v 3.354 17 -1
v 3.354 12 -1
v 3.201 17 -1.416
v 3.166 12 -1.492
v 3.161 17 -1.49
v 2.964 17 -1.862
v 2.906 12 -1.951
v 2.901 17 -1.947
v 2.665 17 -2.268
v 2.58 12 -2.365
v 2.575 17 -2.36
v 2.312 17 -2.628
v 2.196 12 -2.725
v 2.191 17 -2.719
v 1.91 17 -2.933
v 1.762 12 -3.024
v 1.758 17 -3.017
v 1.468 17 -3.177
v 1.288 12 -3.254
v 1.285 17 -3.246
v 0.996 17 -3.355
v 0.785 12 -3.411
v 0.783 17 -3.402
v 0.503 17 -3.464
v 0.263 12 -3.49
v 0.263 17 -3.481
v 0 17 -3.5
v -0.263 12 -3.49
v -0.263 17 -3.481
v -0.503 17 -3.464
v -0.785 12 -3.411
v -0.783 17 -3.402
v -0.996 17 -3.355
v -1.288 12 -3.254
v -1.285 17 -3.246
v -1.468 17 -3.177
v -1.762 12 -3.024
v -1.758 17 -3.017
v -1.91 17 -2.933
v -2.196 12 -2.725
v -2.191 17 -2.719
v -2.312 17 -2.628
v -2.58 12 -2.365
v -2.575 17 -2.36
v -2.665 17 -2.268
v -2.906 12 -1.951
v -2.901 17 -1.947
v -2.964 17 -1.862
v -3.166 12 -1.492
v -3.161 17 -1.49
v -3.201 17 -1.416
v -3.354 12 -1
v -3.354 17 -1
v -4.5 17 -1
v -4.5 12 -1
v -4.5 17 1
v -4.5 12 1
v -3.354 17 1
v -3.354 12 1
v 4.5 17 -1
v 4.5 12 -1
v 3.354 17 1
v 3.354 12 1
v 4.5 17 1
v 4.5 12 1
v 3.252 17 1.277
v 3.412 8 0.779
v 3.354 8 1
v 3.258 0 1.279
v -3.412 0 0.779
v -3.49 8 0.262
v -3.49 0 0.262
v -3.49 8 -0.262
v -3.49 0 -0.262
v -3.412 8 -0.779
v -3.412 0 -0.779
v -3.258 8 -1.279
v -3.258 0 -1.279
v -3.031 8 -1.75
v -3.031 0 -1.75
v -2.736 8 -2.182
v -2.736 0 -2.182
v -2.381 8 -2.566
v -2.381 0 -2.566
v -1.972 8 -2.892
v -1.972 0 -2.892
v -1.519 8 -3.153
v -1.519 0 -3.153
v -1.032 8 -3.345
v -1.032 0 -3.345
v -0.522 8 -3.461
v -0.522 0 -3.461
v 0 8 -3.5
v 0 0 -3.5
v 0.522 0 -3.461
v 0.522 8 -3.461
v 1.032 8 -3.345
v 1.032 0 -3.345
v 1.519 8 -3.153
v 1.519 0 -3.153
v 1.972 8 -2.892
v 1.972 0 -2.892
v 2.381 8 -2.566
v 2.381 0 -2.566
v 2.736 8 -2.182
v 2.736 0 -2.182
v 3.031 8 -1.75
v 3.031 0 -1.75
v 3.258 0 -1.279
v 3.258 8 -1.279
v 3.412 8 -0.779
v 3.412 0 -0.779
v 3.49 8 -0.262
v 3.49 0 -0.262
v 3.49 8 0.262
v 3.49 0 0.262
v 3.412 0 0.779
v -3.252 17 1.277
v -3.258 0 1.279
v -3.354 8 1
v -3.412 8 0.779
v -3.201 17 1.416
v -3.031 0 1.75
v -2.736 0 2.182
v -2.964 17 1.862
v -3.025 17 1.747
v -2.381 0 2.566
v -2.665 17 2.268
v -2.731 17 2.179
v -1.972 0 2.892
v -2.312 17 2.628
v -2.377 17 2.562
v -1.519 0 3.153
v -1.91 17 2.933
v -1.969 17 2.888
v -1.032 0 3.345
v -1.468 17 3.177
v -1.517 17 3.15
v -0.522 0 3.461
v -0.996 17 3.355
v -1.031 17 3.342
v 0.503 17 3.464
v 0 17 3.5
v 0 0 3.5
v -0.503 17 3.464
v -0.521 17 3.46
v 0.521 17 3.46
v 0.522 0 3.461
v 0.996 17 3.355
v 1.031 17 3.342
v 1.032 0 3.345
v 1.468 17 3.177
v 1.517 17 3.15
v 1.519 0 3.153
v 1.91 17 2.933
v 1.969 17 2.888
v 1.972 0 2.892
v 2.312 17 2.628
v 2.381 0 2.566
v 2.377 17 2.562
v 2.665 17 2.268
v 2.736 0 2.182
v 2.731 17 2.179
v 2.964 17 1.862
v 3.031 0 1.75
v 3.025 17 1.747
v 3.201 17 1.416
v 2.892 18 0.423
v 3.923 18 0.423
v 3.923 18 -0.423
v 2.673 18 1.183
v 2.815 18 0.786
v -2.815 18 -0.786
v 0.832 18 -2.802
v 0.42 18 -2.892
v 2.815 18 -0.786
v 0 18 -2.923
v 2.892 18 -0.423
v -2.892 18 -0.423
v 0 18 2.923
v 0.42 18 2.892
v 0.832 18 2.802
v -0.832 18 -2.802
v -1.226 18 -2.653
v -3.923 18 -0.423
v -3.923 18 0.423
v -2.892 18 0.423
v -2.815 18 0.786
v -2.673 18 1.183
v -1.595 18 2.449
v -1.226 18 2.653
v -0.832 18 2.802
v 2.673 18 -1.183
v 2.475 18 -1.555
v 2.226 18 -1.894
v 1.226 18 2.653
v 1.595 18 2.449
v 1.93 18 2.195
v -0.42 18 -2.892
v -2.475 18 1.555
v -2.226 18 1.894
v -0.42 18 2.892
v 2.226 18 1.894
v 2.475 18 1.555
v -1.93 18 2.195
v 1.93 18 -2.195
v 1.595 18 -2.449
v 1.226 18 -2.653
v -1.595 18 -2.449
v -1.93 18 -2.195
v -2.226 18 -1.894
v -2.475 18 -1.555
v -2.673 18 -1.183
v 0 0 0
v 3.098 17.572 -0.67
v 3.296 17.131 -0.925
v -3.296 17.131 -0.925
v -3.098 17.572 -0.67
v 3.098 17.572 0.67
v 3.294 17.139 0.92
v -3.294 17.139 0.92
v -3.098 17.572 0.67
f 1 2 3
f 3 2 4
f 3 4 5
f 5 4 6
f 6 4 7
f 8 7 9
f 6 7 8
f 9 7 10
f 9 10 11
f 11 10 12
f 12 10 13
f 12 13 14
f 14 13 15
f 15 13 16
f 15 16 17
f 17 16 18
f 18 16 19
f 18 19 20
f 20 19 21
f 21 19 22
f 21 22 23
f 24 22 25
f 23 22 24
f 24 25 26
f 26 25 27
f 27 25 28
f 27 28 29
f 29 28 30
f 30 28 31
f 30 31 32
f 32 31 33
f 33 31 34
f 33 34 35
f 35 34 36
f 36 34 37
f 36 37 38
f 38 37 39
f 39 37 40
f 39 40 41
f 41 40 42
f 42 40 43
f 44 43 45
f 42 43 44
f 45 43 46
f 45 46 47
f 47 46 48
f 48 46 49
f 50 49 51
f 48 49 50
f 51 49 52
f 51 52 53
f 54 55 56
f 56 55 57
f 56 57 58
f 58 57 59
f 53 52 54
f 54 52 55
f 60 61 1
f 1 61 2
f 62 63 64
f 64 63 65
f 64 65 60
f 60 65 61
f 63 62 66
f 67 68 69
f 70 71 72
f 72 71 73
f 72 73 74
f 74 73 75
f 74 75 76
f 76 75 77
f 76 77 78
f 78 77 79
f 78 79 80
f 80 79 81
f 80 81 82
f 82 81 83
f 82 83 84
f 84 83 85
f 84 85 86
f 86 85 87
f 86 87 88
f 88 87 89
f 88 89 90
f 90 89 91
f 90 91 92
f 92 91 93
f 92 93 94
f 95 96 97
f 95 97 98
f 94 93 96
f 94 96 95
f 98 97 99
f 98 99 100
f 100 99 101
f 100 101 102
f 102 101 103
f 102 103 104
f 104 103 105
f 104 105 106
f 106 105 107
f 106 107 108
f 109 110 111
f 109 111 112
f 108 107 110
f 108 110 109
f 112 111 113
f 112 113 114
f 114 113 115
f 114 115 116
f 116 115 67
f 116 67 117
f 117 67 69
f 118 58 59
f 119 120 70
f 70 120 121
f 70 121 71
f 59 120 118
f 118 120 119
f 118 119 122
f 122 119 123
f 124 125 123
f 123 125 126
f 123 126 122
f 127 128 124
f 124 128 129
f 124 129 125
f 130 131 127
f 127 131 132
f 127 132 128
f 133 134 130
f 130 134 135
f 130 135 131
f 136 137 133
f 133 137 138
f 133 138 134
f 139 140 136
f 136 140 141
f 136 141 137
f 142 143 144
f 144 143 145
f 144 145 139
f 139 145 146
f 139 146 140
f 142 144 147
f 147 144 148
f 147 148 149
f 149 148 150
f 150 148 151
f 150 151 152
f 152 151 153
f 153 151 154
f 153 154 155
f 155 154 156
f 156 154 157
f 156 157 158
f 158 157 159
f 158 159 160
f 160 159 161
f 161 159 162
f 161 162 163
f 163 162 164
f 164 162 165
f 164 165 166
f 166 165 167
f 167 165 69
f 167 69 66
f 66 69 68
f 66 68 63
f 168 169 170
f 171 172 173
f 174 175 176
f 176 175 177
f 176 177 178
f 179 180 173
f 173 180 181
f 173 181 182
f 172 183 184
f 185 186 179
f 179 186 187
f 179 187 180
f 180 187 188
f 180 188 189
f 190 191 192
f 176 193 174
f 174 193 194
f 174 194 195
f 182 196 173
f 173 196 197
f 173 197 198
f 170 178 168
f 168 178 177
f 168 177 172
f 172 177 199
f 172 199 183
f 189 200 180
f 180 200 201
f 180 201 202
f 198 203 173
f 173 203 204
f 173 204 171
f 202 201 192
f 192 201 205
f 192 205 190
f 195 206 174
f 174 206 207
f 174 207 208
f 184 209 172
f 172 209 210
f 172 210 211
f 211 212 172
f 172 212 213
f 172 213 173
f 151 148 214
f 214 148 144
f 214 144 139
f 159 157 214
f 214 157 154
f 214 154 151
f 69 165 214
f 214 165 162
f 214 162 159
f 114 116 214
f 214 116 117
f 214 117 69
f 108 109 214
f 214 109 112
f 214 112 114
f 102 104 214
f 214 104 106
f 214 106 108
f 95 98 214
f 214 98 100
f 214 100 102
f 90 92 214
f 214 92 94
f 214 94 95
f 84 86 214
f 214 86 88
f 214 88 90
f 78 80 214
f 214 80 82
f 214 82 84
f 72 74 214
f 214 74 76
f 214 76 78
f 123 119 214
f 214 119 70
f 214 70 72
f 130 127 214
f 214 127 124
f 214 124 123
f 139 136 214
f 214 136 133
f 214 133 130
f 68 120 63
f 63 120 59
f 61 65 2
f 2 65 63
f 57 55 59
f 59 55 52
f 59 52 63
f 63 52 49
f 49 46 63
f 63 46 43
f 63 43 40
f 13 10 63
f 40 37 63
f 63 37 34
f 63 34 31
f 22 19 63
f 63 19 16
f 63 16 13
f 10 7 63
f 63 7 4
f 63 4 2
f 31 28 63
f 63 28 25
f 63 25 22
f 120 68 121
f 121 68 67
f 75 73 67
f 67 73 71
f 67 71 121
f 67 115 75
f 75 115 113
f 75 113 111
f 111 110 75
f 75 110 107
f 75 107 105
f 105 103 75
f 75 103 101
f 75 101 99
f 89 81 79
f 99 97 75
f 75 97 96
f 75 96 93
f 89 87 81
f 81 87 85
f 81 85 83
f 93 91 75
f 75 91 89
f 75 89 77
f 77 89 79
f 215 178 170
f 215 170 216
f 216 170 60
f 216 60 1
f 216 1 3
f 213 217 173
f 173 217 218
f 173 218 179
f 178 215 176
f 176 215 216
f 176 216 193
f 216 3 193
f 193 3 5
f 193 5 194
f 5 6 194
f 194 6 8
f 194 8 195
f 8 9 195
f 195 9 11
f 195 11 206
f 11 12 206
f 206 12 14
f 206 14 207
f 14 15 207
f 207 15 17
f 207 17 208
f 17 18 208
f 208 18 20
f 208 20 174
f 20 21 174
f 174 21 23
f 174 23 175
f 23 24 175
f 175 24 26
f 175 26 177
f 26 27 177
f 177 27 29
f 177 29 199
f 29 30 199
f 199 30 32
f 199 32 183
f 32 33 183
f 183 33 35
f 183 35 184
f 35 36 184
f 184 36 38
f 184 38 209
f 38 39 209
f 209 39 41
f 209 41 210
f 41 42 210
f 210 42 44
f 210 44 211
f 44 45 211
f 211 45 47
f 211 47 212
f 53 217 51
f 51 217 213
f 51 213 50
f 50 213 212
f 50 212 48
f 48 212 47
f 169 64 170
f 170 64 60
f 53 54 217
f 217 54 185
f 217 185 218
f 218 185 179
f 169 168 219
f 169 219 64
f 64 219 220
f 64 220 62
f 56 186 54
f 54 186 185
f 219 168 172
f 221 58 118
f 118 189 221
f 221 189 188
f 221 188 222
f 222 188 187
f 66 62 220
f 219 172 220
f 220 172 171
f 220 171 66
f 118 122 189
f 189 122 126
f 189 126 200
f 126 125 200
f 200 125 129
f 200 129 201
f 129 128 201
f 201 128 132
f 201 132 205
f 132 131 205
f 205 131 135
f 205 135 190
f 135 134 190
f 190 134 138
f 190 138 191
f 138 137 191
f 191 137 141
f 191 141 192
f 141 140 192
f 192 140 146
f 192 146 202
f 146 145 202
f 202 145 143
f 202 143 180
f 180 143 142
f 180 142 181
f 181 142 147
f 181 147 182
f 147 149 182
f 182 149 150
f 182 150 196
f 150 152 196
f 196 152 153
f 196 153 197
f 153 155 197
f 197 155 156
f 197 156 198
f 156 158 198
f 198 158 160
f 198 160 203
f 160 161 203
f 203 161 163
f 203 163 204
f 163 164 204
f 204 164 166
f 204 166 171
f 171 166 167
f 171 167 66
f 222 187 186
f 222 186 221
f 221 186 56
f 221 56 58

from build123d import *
from OCP.BRepFilletAPI import BRepFilletAPI_MakeChamfer

# Parameters (mm, degrees)
SKETCH1_R           = 3.5
BOSS_EXTRUDE1_DEPTH = 18
SKETCH2_W           = 9
SKETCH2_H           = 2
BOSS_EXTRUDE3_DEPTH = 10
CUT_EXTRUDE3_START  = -8
SKETCH3_W           = 10
SKETCH3_H           = 4.5
CUT_EXTRUDE3_DEPTH  = 4
CHAMFER1_SIZE       = 1
CHAMFER1_SIZE2      = 0.577350269


with BuildPart() as part:
    # Sketch1 → Boss-Extrude1 (new body)
    with BuildSketch(Plane(origin=(0, 0, 0), x_dir=(1, 0, 0), z_dir=(0, 1, 0))):
        with Locations(Location((0, 0, 0), (0, 0, 270))):
            Circle(SKETCH1_R)
    extrude(amount=BOSS_EXTRUDE1_DEPTH)

    # Sketch2 → Boss-Extrude3 (add)
    with BuildSketch(Plane(origin=(0, 18, 0), x_dir=(1, 0, 0), z_dir=(0, 1, 0))):
        Rectangle(SKETCH2_W, SKETCH2_H)
    extrude(amount=-BOSS_EXTRUDE3_DEPTH)

    # Sketch3 → Cut-Extrude3 (cut)
    with BuildSketch(Plane.XZ.offset(CUT_EXTRUDE3_START)):
        with Locations((0, -1.25)):
            Rectangle(SKETCH3_W, SKETCH3_H)
    extrude(amount=-CUT_EXTRUDE3_DEPTH, mode=Mode.SUBTRACT)

    # Chamfer1: one chamfer whose edges measure the first distance from different faces: ONE call of the kernel's chamfer builder (chamfer() names one face for all edges)
    chamfer1_edges_1 = [part.edges().sort_by_distance(p)[0] for p in [
        (3.927050983, 18, -1),
    ]]
    chamfer1_side_1 = [part.faces().sort_by_distance(p)[0] for p in [
        (3.927050983, 15, -1),
    ]]
    chamfer1_edges_2 = [part.edges().sort_by_distance(p)[0] for p in [
        (3.927050983, 18, 1),
    ]]
    chamfer1_side_2 = [part.faces().sort_by_distance(p)[0] for p in [
        (3.927050983, 15, 1),
    ]]
    chamfer1_edges_3 = [part.edges().sort_by_distance(p)[0] for p in [
        (4.5, 18, 0),
    ]]
    chamfer1_side_3 = [part.faces().sort_by_distance(p)[0] for p in [
        (4.5, 15, 0),
    ]]
    chamfer1_edges_4 = [part.edges().sort_by_distance(p)[0] for p in [
        (-3.927050983, 18, 1),
    ]]
    chamfer1_side_4 = [part.faces().sort_by_distance(p)[0] for p in [
        (-3.927050983, 15, 1),
    ]]
    chamfer1_edges_5 = [part.edges().sort_by_distance(p)[0] for p in [
        (-3.927050983, 18, -1),
    ]]
    chamfer1_side_5 = [part.faces().sort_by_distance(p)[0] for p in [
        (-3.927050983, 15, -1),
    ]]
    chamfer1_edges_6 = [part.edges().sort_by_distance(p)[0] for p in [
        (-4.5, 18, 0),
    ]]
    chamfer1_side_6 = [part.faces().sort_by_distance(p)[0] for p in [
        (-4.5, 15, 0),
    ]]
    chamfer1_edges_7 = [part.edges().sort_by_distance(p)[0] for p in [
        (0, 18, -3.5),
    ]]
    chamfer1_side_7 = [part.faces().sort_by_distance(p)[0] for p in [
        (0, 15, -3.5),
    ]]
    chamfer1_edges_8 = [part.edges().sort_by_distance(p)[0] for p in [
        (2.091650066, 18, 2.80624304),
    ]]
    chamfer1_side_8 = [part.faces().sort_by_distance(p)[0] for p in [
        (0, 9, -3.5),
    ]]
    chamfer1 = BRepFilletAPI_MakeChamfer(part.part.solid().wrapped)
    for e in chamfer1_edges_1:
        chamfer1.Add(CHAMFER1_SIZE, CHAMFER1_SIZE2, e.wrapped, chamfer1_side_1[0].wrapped)  # the first distance lies on this face
    for e in chamfer1_edges_2:
        chamfer1.Add(CHAMFER1_SIZE, CHAMFER1_SIZE2, e.wrapped, chamfer1_side_2[0].wrapped)  # the first distance lies on this face
    for e in chamfer1_edges_3:
        chamfer1.Add(CHAMFER1_SIZE, CHAMFER1_SIZE2, e.wrapped, chamfer1_side_3[0].wrapped)  # the first distance lies on this face
    for e in chamfer1_edges_4:
        chamfer1.Add(CHAMFER1_SIZE, CHAMFER1_SIZE2, e.wrapped, chamfer1_side_4[0].wrapped)  # the first distance lies on this face
    for e in chamfer1_edges_5:
        chamfer1.Add(CHAMFER1_SIZE, CHAMFER1_SIZE2, e.wrapped, chamfer1_side_5[0].wrapped)  # the first distance lies on this face
    for e in chamfer1_edges_6:
        chamfer1.Add(CHAMFER1_SIZE, CHAMFER1_SIZE2, e.wrapped, chamfer1_side_6[0].wrapped)  # the first distance lies on this face
    for e in chamfer1_edges_7:
        chamfer1.Add(CHAMFER1_SIZE, CHAMFER1_SIZE2, e.wrapped, chamfer1_side_7[0].wrapped)  # the first distance lies on this face
    for e in chamfer1_edges_8:
        chamfer1.Add(CHAMFER1_SIZE, CHAMFER1_SIZE2, e.wrapped, chamfer1_side_8[0].wrapped)  # the first distance lies on this face
    add(Compound.cast(chamfer1.Shape()), mode=Mode.REPLACE)


solid = part.part
